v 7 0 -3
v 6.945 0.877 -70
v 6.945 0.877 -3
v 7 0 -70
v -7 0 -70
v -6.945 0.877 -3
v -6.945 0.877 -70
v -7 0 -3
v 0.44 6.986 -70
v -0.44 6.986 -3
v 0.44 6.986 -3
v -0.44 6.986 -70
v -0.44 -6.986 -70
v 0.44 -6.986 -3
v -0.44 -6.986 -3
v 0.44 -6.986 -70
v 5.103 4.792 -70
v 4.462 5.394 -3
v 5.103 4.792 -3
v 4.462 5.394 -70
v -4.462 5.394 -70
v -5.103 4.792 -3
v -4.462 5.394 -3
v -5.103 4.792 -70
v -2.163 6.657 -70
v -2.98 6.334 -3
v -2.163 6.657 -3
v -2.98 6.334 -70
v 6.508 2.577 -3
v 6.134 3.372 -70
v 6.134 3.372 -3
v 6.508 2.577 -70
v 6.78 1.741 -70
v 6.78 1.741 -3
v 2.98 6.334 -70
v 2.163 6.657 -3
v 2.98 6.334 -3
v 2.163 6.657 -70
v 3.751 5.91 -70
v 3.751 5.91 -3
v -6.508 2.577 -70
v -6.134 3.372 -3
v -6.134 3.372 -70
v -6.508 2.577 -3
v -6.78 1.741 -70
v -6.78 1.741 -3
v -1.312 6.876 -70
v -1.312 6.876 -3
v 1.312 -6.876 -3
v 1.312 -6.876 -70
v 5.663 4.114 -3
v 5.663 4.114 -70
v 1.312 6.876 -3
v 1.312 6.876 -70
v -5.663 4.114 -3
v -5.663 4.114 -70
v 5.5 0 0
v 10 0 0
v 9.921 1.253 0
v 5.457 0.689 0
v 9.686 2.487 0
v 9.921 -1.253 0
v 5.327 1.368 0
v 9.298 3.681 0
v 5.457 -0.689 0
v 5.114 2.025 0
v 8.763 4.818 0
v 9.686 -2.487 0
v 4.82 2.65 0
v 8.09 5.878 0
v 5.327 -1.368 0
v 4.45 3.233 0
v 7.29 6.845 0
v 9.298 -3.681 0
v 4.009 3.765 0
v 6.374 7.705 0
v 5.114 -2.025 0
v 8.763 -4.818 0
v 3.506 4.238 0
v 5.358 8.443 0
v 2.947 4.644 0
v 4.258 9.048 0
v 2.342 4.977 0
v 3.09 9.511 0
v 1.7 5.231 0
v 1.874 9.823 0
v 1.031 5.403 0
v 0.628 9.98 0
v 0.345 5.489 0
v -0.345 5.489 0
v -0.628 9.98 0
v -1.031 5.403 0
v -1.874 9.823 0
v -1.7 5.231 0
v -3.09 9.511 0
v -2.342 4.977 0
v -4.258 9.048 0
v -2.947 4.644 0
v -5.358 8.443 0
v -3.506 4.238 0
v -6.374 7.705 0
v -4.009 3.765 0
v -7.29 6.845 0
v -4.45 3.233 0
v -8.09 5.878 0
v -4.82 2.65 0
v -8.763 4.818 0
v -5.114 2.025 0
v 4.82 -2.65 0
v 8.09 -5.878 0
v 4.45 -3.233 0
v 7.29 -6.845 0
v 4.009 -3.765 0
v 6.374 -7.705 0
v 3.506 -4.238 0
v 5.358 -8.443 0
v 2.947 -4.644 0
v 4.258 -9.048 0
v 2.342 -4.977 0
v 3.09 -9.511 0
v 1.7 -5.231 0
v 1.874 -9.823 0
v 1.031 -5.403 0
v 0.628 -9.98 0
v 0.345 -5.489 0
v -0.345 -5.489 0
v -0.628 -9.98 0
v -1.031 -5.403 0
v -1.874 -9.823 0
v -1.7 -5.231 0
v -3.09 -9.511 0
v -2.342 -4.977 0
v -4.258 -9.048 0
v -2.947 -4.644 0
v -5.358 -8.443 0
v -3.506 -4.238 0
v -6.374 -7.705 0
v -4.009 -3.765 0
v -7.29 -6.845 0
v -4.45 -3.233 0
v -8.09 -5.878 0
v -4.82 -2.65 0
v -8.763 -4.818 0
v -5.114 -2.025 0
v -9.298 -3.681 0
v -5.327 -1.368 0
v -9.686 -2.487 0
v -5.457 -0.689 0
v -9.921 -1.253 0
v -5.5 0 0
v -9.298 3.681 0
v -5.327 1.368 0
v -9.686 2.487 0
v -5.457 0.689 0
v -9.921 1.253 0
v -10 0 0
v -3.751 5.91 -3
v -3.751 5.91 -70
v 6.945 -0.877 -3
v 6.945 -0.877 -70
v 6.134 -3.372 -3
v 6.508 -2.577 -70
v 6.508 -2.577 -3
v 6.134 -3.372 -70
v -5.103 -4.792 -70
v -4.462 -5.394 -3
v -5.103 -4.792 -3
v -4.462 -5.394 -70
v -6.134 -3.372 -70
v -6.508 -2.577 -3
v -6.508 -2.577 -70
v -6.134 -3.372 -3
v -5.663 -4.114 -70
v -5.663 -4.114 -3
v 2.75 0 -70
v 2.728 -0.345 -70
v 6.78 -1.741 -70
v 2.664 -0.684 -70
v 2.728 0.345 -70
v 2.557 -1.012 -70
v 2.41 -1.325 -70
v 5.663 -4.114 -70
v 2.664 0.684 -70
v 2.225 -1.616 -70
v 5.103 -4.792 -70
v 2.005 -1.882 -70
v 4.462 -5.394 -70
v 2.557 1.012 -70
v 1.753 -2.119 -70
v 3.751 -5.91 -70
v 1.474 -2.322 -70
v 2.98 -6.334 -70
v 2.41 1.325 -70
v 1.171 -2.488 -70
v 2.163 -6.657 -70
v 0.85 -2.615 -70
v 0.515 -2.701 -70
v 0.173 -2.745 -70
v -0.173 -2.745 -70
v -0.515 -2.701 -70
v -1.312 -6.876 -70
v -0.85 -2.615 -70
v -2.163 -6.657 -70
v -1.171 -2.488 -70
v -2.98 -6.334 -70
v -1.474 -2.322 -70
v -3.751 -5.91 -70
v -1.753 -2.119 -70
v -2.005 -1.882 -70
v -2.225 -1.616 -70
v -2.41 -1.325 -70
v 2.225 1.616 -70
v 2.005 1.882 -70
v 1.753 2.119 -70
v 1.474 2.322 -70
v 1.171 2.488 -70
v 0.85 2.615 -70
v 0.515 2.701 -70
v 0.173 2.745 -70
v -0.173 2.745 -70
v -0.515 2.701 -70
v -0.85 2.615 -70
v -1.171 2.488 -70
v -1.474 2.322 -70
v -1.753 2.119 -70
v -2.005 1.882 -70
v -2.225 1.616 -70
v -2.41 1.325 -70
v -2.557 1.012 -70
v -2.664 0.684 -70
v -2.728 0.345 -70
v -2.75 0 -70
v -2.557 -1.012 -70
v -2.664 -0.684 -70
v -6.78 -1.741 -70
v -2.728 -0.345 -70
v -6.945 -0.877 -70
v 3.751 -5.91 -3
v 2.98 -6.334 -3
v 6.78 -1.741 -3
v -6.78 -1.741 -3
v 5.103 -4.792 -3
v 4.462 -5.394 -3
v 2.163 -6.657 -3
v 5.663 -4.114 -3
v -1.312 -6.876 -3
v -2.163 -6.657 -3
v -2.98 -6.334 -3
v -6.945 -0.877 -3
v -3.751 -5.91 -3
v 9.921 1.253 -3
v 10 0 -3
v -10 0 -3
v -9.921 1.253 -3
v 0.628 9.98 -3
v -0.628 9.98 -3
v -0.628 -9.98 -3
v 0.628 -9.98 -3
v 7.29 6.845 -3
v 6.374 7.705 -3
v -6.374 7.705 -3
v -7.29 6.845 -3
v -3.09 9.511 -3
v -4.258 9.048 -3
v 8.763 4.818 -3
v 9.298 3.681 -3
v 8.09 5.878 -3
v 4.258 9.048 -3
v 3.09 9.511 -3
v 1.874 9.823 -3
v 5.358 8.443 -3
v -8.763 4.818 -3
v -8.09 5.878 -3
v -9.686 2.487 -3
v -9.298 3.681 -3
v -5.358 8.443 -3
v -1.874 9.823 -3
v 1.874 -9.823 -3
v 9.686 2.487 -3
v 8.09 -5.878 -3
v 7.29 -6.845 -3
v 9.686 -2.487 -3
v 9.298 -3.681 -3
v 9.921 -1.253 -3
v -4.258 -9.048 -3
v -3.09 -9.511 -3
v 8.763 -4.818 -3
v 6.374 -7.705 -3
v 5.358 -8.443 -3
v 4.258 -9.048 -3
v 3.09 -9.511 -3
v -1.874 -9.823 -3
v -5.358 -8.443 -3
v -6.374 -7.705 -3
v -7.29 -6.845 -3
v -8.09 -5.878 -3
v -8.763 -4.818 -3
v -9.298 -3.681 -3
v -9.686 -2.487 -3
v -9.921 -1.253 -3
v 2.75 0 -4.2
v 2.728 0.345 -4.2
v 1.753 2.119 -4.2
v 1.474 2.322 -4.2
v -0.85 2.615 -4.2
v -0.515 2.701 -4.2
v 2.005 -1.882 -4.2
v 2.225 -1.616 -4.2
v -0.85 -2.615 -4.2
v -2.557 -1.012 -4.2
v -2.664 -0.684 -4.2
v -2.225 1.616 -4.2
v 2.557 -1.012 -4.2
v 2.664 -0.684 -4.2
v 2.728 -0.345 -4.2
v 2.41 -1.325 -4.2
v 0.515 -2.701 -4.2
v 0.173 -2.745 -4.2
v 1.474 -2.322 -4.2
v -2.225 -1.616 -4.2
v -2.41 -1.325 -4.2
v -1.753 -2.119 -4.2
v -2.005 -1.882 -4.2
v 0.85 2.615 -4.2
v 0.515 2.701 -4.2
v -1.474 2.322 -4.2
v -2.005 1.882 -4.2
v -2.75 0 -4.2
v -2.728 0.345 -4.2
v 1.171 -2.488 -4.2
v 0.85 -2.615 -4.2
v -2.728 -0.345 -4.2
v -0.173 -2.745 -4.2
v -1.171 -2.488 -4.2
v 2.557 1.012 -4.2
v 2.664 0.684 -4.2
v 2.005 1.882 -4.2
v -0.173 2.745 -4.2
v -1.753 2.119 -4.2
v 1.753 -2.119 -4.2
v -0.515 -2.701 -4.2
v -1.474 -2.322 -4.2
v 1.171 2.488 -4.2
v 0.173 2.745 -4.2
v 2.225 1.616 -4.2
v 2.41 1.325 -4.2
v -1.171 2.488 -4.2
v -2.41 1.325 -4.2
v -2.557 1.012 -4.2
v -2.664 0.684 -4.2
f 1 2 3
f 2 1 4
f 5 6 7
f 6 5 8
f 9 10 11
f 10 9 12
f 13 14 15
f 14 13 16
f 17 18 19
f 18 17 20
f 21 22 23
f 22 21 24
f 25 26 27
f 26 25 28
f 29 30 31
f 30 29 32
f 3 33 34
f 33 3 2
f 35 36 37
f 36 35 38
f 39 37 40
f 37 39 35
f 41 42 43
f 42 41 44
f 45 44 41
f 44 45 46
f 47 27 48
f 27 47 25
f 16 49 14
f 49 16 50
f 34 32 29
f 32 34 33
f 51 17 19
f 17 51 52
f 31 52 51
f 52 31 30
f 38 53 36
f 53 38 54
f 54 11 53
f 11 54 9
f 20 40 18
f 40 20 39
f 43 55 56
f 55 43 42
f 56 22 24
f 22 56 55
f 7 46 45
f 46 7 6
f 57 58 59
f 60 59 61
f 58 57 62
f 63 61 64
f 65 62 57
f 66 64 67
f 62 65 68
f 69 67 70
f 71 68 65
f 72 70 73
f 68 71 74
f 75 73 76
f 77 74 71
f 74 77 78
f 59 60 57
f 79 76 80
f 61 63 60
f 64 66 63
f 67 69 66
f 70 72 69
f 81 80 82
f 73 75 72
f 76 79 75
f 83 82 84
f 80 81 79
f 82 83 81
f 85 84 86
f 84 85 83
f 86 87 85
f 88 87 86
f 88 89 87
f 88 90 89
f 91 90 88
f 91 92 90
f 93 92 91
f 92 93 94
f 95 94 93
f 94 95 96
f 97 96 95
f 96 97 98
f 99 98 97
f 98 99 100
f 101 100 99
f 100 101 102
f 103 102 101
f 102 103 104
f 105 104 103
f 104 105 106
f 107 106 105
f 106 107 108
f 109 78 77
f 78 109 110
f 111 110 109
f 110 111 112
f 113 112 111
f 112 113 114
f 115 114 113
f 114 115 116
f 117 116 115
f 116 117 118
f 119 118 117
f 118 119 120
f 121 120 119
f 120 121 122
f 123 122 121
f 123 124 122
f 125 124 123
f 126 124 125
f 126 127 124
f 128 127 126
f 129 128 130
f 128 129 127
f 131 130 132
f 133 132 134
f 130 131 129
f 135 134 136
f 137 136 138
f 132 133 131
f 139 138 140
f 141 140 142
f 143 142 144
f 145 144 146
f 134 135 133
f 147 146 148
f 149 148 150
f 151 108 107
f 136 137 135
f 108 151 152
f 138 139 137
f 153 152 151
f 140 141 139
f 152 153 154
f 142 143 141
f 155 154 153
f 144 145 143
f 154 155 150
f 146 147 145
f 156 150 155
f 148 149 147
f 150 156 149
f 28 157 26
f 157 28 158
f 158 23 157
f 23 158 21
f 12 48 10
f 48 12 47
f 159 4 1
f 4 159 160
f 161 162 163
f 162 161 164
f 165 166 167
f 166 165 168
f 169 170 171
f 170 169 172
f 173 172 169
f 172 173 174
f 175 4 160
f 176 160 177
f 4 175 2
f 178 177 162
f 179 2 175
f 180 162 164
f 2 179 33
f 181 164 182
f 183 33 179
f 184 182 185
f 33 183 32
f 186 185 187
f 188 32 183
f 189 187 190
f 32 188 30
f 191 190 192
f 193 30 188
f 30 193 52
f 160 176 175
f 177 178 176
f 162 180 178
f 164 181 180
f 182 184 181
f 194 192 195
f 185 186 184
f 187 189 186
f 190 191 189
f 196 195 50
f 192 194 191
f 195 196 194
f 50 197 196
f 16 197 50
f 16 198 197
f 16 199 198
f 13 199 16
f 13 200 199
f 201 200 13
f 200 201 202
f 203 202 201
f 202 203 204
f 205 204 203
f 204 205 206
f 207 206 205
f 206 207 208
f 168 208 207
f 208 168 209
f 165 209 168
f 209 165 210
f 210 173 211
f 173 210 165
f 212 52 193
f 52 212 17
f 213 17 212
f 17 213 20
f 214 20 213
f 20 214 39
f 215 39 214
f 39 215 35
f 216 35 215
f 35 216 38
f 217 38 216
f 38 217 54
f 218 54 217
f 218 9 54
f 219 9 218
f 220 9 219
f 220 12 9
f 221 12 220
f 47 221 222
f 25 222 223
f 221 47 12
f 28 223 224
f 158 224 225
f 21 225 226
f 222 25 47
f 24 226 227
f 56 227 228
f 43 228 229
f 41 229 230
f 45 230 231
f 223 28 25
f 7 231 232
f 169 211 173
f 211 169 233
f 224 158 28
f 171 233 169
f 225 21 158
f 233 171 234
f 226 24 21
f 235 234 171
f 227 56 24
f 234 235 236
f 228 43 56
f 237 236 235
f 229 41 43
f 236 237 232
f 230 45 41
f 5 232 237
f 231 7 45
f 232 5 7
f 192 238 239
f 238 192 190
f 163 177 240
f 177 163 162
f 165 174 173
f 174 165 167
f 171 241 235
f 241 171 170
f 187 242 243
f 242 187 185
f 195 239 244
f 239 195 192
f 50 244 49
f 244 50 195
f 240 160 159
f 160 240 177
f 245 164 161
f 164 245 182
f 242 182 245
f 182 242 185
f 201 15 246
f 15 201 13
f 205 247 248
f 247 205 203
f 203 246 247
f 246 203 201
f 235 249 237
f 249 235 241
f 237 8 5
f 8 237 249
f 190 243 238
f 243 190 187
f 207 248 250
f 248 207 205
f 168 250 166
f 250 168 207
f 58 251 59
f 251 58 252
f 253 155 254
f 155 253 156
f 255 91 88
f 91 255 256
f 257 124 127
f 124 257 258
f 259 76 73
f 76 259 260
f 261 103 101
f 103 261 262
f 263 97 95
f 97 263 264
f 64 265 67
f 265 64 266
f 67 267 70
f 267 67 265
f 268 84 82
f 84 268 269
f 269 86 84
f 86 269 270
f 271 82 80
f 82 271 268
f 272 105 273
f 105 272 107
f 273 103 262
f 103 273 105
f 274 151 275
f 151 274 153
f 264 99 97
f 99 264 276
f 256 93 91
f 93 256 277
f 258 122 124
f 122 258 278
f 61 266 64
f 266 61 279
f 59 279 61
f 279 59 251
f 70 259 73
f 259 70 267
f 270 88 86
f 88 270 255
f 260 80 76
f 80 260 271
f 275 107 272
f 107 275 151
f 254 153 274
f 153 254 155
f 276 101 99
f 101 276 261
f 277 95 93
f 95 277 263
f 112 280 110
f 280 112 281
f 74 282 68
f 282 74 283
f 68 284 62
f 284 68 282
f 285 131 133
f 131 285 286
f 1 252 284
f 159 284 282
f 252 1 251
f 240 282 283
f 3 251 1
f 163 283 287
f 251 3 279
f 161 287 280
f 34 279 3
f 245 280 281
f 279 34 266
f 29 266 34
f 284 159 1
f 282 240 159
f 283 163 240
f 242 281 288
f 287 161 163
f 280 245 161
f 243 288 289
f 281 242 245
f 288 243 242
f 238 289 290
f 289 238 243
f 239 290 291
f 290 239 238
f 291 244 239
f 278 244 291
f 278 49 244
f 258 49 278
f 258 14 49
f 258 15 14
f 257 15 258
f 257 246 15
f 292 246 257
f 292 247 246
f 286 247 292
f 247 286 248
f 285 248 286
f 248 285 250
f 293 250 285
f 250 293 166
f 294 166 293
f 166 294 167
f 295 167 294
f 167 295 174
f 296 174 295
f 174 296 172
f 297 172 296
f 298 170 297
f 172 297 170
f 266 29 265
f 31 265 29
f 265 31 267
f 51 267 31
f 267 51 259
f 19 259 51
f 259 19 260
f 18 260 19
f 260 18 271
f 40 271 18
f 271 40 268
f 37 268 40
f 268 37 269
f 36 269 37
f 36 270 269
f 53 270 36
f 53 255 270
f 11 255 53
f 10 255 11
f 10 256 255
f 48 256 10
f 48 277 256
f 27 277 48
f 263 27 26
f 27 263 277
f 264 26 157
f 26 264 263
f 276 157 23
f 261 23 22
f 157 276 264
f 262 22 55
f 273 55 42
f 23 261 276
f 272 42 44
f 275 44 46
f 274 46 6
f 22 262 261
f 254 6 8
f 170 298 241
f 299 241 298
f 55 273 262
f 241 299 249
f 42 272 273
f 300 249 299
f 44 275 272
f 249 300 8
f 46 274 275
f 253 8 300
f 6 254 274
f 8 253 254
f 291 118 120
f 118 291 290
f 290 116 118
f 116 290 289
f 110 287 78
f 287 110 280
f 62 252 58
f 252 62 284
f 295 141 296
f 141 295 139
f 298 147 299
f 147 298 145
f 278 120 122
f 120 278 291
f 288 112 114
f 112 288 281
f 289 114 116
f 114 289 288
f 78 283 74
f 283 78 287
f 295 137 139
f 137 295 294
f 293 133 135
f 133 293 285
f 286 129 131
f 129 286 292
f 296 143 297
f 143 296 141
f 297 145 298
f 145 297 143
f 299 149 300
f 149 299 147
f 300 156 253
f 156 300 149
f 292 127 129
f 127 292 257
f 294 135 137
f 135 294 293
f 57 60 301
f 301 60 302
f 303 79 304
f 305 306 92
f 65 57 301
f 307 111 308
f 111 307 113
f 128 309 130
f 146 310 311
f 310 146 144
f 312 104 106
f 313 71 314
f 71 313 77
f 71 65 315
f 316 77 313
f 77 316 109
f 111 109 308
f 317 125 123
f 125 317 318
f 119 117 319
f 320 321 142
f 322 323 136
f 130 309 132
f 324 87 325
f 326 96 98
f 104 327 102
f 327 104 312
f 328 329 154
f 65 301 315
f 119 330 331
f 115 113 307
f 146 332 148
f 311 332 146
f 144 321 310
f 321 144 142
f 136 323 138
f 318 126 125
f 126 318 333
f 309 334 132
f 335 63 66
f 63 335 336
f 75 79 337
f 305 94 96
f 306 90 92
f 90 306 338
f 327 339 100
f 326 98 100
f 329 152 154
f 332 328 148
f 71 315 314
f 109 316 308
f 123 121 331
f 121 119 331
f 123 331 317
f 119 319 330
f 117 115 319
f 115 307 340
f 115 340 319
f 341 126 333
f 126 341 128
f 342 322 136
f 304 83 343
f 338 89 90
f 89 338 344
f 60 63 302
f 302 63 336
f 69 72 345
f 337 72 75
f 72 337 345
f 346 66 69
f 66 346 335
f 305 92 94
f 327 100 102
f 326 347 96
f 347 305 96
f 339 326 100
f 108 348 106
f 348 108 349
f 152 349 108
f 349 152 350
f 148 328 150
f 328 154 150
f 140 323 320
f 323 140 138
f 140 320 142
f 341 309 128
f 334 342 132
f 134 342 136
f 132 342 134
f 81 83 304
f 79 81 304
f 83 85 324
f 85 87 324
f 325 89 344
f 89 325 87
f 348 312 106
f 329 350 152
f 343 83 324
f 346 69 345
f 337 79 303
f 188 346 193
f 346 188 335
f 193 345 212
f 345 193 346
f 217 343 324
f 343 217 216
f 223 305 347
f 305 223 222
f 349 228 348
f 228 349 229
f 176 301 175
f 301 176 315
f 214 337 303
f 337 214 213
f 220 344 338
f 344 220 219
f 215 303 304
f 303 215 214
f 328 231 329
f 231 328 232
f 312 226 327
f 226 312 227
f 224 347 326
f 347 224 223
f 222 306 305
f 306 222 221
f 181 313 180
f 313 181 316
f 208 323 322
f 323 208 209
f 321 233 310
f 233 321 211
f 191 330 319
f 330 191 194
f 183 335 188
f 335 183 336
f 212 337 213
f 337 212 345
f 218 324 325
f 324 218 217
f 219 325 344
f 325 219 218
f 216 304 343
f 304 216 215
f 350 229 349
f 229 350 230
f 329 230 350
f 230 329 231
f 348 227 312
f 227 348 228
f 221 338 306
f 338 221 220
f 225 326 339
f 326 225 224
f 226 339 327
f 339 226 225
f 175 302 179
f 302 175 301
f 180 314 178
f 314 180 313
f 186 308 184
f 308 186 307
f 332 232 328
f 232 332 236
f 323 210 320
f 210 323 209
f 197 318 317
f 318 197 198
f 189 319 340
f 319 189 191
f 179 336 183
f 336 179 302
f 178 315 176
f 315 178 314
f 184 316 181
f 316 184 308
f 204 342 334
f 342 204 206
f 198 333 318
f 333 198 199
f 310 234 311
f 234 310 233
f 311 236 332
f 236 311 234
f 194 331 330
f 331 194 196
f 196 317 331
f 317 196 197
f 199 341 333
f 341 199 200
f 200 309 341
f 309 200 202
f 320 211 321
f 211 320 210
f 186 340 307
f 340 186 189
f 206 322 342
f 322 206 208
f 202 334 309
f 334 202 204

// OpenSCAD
$fn = 50;


difference() {
	union() {
		translate(v = [0, 0, -70.0000000000]) {
			cylinder(h = 70, r = 7.0000000000);
		}
		translate(v = [0, 0, -3.0000000000]) {
			cylinder(h = 3, r = 10.0000000000);
		}
	}
	union() {
		translate(v = [0, 0, 0]) {
			rotate(a = [0, 0, 0]) {
				difference() {
					union() {
						#translate(v = [0, 0, -70.0000000000]) {
							cylinder(h = 70, r = 2.2500000000);
						}
						#translate(v = [0, 0, -4.2000000000]) {
							cylinder(h = 4.2000000000, r1 = 2.7500000000, r2 = 5.5000000000);
						}
						#translate(v = [0, 0, -70.0000000000]) {
							cylinder(h = 70, r = 2.7500000000);
						}
						#translate(v = [0, 0, -70.0000000000]) {
							cylinder(h = 70, r = 2.2500000000);
						}
					}
					union();
				}
			}
		}
	}
}
